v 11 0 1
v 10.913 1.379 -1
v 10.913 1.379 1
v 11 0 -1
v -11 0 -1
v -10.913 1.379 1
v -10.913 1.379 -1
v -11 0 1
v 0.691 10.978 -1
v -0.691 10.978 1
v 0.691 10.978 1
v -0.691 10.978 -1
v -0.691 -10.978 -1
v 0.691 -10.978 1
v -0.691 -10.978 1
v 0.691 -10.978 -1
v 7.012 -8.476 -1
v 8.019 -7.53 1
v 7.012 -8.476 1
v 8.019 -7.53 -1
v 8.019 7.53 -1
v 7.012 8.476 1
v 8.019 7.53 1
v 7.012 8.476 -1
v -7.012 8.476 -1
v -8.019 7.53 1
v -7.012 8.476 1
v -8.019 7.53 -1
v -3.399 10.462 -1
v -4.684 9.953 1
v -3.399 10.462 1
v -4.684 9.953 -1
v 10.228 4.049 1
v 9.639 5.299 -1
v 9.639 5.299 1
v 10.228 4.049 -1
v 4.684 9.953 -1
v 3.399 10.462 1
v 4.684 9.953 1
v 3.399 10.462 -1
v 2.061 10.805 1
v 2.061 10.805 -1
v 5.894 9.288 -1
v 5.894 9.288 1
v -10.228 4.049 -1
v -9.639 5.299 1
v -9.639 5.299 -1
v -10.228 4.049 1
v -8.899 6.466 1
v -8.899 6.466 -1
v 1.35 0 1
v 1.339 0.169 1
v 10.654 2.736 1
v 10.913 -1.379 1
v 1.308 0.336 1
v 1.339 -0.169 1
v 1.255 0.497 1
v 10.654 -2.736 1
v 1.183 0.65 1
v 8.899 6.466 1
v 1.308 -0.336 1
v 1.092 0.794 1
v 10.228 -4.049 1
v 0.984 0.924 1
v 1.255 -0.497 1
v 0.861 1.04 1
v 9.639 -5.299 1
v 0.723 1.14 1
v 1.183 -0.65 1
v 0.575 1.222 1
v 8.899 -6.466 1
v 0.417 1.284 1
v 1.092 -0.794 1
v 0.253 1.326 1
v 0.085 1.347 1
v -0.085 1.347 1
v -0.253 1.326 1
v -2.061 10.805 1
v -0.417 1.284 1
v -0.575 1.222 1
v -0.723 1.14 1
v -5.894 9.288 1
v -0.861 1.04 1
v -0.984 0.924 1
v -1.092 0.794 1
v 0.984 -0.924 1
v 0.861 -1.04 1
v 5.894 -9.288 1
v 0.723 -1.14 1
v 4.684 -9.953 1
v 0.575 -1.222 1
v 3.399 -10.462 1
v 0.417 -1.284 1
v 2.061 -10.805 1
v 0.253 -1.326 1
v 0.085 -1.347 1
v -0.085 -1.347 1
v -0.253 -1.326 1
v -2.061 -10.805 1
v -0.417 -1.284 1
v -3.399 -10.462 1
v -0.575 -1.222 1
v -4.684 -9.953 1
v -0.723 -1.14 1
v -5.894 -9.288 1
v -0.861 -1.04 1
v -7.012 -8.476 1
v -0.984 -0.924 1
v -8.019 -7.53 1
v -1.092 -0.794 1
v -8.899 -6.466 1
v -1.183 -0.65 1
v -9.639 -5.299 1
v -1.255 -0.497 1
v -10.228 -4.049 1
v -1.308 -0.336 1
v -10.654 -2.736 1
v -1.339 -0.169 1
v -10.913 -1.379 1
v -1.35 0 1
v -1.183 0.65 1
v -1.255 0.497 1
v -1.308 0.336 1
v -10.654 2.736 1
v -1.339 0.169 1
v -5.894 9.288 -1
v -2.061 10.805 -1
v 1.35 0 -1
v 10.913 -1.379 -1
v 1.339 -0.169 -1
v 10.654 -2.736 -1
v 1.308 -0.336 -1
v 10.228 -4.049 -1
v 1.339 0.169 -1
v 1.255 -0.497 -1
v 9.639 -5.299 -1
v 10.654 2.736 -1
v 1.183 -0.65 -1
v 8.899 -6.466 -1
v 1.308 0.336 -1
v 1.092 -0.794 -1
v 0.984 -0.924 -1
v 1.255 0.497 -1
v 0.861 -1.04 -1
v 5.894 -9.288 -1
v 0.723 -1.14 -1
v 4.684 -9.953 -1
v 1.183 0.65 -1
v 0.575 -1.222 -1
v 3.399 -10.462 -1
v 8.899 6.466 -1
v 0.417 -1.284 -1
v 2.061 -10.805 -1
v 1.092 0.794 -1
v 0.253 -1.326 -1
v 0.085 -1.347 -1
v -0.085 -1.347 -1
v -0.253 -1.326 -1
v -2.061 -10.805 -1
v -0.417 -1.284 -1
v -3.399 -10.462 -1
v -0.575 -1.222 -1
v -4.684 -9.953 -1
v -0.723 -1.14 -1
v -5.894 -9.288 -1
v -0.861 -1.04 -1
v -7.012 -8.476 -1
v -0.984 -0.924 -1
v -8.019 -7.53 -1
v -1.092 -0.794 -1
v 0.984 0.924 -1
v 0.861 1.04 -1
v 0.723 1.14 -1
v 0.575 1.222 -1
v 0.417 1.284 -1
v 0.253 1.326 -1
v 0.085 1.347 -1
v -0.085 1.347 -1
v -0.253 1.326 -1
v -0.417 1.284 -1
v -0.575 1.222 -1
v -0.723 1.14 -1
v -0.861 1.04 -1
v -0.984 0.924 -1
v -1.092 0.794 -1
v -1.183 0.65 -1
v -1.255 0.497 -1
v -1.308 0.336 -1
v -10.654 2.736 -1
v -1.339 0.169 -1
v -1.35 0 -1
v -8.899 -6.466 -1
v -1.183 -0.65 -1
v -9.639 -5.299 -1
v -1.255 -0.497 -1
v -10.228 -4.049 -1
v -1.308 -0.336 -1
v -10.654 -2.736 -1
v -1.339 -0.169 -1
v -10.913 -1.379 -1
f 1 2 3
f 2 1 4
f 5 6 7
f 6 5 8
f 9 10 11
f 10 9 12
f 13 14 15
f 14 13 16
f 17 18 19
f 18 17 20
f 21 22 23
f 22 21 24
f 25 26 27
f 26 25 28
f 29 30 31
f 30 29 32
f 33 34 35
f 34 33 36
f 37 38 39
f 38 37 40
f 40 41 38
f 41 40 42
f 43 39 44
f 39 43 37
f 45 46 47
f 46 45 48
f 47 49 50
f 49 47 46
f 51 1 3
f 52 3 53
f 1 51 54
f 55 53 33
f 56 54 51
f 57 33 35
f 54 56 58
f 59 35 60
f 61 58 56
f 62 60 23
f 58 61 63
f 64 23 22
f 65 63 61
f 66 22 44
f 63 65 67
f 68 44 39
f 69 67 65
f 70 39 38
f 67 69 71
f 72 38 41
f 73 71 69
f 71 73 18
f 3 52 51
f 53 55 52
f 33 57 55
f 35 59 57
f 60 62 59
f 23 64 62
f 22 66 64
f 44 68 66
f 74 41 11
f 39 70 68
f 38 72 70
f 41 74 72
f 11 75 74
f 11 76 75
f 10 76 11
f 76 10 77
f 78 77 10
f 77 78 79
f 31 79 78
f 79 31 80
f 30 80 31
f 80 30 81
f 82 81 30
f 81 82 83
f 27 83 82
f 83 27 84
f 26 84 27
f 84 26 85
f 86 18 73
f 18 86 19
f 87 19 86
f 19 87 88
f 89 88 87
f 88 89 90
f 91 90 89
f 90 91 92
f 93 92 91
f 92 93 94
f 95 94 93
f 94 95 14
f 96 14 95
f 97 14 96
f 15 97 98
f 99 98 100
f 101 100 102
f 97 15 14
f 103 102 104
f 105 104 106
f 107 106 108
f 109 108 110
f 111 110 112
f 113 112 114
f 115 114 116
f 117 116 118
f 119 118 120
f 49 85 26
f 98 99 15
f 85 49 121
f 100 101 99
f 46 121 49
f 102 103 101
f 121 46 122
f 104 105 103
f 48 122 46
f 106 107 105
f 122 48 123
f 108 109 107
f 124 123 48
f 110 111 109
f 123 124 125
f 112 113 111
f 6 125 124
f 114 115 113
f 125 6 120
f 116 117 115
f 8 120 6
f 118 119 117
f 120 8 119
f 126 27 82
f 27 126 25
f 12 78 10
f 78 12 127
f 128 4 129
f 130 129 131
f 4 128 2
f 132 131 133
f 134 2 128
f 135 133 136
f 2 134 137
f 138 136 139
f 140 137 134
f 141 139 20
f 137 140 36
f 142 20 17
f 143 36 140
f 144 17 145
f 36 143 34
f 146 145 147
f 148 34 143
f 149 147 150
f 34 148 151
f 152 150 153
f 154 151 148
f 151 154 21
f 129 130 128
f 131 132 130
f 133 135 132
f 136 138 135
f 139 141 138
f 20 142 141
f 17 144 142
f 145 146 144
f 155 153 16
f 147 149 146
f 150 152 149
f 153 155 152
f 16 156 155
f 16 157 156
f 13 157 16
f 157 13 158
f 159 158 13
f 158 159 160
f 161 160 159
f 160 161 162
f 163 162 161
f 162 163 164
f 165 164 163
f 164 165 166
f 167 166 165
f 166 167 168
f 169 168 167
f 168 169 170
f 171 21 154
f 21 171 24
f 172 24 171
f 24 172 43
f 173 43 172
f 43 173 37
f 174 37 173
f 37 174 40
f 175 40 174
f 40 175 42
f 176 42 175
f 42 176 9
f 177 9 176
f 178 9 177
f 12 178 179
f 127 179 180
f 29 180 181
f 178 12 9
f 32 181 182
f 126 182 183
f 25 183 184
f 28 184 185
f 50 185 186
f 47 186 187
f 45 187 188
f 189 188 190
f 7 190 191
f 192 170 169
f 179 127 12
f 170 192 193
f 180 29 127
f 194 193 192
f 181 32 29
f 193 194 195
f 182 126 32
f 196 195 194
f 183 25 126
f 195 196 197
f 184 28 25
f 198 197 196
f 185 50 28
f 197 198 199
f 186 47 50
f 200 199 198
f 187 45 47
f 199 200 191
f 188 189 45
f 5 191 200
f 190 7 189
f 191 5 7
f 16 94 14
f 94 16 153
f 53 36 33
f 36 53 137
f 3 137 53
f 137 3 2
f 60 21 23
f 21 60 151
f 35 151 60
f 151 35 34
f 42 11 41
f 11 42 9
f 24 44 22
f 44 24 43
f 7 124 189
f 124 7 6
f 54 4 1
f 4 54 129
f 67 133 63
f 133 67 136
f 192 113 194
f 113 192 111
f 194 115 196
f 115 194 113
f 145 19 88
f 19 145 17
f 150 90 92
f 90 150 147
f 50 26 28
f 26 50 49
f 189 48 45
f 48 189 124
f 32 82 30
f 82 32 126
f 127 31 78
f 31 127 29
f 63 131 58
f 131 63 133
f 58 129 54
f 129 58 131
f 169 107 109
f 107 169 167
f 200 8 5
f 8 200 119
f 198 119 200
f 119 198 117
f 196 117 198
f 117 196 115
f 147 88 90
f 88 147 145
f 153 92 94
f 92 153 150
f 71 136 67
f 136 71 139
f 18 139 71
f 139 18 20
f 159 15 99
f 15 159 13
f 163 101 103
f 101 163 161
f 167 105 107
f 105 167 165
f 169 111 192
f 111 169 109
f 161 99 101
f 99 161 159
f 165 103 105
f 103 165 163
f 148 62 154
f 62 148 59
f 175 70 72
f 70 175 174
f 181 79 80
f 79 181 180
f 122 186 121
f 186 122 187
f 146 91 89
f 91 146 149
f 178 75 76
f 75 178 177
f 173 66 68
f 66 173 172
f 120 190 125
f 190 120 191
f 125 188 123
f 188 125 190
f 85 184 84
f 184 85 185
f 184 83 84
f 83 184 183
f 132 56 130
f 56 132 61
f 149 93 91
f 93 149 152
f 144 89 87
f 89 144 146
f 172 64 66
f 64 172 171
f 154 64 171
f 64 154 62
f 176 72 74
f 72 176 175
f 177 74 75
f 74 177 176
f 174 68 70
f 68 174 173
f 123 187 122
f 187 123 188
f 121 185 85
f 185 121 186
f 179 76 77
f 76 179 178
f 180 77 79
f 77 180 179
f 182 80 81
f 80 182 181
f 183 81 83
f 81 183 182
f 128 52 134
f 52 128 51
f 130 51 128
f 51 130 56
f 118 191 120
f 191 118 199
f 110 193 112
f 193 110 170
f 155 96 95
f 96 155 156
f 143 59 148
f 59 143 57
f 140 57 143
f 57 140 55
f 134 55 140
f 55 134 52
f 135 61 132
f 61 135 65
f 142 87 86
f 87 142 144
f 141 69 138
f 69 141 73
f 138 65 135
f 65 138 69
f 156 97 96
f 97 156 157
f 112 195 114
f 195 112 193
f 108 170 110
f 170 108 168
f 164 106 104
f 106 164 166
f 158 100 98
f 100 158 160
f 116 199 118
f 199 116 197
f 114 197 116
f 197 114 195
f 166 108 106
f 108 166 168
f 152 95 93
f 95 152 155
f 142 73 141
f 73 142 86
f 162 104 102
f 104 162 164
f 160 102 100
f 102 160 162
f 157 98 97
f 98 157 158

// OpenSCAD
$fn = 50;


difference() {
	union() {
		translate(v = [0, 0, -1.0000000000]) {
			cylinder(h = 2, r = 11.0000000000);
		}
	}
	union() {
		translate(v = [0, 0, -100.0000000000]) {
			cylinder(h = 200, r = 1.3500000000);
		}
	}
}
